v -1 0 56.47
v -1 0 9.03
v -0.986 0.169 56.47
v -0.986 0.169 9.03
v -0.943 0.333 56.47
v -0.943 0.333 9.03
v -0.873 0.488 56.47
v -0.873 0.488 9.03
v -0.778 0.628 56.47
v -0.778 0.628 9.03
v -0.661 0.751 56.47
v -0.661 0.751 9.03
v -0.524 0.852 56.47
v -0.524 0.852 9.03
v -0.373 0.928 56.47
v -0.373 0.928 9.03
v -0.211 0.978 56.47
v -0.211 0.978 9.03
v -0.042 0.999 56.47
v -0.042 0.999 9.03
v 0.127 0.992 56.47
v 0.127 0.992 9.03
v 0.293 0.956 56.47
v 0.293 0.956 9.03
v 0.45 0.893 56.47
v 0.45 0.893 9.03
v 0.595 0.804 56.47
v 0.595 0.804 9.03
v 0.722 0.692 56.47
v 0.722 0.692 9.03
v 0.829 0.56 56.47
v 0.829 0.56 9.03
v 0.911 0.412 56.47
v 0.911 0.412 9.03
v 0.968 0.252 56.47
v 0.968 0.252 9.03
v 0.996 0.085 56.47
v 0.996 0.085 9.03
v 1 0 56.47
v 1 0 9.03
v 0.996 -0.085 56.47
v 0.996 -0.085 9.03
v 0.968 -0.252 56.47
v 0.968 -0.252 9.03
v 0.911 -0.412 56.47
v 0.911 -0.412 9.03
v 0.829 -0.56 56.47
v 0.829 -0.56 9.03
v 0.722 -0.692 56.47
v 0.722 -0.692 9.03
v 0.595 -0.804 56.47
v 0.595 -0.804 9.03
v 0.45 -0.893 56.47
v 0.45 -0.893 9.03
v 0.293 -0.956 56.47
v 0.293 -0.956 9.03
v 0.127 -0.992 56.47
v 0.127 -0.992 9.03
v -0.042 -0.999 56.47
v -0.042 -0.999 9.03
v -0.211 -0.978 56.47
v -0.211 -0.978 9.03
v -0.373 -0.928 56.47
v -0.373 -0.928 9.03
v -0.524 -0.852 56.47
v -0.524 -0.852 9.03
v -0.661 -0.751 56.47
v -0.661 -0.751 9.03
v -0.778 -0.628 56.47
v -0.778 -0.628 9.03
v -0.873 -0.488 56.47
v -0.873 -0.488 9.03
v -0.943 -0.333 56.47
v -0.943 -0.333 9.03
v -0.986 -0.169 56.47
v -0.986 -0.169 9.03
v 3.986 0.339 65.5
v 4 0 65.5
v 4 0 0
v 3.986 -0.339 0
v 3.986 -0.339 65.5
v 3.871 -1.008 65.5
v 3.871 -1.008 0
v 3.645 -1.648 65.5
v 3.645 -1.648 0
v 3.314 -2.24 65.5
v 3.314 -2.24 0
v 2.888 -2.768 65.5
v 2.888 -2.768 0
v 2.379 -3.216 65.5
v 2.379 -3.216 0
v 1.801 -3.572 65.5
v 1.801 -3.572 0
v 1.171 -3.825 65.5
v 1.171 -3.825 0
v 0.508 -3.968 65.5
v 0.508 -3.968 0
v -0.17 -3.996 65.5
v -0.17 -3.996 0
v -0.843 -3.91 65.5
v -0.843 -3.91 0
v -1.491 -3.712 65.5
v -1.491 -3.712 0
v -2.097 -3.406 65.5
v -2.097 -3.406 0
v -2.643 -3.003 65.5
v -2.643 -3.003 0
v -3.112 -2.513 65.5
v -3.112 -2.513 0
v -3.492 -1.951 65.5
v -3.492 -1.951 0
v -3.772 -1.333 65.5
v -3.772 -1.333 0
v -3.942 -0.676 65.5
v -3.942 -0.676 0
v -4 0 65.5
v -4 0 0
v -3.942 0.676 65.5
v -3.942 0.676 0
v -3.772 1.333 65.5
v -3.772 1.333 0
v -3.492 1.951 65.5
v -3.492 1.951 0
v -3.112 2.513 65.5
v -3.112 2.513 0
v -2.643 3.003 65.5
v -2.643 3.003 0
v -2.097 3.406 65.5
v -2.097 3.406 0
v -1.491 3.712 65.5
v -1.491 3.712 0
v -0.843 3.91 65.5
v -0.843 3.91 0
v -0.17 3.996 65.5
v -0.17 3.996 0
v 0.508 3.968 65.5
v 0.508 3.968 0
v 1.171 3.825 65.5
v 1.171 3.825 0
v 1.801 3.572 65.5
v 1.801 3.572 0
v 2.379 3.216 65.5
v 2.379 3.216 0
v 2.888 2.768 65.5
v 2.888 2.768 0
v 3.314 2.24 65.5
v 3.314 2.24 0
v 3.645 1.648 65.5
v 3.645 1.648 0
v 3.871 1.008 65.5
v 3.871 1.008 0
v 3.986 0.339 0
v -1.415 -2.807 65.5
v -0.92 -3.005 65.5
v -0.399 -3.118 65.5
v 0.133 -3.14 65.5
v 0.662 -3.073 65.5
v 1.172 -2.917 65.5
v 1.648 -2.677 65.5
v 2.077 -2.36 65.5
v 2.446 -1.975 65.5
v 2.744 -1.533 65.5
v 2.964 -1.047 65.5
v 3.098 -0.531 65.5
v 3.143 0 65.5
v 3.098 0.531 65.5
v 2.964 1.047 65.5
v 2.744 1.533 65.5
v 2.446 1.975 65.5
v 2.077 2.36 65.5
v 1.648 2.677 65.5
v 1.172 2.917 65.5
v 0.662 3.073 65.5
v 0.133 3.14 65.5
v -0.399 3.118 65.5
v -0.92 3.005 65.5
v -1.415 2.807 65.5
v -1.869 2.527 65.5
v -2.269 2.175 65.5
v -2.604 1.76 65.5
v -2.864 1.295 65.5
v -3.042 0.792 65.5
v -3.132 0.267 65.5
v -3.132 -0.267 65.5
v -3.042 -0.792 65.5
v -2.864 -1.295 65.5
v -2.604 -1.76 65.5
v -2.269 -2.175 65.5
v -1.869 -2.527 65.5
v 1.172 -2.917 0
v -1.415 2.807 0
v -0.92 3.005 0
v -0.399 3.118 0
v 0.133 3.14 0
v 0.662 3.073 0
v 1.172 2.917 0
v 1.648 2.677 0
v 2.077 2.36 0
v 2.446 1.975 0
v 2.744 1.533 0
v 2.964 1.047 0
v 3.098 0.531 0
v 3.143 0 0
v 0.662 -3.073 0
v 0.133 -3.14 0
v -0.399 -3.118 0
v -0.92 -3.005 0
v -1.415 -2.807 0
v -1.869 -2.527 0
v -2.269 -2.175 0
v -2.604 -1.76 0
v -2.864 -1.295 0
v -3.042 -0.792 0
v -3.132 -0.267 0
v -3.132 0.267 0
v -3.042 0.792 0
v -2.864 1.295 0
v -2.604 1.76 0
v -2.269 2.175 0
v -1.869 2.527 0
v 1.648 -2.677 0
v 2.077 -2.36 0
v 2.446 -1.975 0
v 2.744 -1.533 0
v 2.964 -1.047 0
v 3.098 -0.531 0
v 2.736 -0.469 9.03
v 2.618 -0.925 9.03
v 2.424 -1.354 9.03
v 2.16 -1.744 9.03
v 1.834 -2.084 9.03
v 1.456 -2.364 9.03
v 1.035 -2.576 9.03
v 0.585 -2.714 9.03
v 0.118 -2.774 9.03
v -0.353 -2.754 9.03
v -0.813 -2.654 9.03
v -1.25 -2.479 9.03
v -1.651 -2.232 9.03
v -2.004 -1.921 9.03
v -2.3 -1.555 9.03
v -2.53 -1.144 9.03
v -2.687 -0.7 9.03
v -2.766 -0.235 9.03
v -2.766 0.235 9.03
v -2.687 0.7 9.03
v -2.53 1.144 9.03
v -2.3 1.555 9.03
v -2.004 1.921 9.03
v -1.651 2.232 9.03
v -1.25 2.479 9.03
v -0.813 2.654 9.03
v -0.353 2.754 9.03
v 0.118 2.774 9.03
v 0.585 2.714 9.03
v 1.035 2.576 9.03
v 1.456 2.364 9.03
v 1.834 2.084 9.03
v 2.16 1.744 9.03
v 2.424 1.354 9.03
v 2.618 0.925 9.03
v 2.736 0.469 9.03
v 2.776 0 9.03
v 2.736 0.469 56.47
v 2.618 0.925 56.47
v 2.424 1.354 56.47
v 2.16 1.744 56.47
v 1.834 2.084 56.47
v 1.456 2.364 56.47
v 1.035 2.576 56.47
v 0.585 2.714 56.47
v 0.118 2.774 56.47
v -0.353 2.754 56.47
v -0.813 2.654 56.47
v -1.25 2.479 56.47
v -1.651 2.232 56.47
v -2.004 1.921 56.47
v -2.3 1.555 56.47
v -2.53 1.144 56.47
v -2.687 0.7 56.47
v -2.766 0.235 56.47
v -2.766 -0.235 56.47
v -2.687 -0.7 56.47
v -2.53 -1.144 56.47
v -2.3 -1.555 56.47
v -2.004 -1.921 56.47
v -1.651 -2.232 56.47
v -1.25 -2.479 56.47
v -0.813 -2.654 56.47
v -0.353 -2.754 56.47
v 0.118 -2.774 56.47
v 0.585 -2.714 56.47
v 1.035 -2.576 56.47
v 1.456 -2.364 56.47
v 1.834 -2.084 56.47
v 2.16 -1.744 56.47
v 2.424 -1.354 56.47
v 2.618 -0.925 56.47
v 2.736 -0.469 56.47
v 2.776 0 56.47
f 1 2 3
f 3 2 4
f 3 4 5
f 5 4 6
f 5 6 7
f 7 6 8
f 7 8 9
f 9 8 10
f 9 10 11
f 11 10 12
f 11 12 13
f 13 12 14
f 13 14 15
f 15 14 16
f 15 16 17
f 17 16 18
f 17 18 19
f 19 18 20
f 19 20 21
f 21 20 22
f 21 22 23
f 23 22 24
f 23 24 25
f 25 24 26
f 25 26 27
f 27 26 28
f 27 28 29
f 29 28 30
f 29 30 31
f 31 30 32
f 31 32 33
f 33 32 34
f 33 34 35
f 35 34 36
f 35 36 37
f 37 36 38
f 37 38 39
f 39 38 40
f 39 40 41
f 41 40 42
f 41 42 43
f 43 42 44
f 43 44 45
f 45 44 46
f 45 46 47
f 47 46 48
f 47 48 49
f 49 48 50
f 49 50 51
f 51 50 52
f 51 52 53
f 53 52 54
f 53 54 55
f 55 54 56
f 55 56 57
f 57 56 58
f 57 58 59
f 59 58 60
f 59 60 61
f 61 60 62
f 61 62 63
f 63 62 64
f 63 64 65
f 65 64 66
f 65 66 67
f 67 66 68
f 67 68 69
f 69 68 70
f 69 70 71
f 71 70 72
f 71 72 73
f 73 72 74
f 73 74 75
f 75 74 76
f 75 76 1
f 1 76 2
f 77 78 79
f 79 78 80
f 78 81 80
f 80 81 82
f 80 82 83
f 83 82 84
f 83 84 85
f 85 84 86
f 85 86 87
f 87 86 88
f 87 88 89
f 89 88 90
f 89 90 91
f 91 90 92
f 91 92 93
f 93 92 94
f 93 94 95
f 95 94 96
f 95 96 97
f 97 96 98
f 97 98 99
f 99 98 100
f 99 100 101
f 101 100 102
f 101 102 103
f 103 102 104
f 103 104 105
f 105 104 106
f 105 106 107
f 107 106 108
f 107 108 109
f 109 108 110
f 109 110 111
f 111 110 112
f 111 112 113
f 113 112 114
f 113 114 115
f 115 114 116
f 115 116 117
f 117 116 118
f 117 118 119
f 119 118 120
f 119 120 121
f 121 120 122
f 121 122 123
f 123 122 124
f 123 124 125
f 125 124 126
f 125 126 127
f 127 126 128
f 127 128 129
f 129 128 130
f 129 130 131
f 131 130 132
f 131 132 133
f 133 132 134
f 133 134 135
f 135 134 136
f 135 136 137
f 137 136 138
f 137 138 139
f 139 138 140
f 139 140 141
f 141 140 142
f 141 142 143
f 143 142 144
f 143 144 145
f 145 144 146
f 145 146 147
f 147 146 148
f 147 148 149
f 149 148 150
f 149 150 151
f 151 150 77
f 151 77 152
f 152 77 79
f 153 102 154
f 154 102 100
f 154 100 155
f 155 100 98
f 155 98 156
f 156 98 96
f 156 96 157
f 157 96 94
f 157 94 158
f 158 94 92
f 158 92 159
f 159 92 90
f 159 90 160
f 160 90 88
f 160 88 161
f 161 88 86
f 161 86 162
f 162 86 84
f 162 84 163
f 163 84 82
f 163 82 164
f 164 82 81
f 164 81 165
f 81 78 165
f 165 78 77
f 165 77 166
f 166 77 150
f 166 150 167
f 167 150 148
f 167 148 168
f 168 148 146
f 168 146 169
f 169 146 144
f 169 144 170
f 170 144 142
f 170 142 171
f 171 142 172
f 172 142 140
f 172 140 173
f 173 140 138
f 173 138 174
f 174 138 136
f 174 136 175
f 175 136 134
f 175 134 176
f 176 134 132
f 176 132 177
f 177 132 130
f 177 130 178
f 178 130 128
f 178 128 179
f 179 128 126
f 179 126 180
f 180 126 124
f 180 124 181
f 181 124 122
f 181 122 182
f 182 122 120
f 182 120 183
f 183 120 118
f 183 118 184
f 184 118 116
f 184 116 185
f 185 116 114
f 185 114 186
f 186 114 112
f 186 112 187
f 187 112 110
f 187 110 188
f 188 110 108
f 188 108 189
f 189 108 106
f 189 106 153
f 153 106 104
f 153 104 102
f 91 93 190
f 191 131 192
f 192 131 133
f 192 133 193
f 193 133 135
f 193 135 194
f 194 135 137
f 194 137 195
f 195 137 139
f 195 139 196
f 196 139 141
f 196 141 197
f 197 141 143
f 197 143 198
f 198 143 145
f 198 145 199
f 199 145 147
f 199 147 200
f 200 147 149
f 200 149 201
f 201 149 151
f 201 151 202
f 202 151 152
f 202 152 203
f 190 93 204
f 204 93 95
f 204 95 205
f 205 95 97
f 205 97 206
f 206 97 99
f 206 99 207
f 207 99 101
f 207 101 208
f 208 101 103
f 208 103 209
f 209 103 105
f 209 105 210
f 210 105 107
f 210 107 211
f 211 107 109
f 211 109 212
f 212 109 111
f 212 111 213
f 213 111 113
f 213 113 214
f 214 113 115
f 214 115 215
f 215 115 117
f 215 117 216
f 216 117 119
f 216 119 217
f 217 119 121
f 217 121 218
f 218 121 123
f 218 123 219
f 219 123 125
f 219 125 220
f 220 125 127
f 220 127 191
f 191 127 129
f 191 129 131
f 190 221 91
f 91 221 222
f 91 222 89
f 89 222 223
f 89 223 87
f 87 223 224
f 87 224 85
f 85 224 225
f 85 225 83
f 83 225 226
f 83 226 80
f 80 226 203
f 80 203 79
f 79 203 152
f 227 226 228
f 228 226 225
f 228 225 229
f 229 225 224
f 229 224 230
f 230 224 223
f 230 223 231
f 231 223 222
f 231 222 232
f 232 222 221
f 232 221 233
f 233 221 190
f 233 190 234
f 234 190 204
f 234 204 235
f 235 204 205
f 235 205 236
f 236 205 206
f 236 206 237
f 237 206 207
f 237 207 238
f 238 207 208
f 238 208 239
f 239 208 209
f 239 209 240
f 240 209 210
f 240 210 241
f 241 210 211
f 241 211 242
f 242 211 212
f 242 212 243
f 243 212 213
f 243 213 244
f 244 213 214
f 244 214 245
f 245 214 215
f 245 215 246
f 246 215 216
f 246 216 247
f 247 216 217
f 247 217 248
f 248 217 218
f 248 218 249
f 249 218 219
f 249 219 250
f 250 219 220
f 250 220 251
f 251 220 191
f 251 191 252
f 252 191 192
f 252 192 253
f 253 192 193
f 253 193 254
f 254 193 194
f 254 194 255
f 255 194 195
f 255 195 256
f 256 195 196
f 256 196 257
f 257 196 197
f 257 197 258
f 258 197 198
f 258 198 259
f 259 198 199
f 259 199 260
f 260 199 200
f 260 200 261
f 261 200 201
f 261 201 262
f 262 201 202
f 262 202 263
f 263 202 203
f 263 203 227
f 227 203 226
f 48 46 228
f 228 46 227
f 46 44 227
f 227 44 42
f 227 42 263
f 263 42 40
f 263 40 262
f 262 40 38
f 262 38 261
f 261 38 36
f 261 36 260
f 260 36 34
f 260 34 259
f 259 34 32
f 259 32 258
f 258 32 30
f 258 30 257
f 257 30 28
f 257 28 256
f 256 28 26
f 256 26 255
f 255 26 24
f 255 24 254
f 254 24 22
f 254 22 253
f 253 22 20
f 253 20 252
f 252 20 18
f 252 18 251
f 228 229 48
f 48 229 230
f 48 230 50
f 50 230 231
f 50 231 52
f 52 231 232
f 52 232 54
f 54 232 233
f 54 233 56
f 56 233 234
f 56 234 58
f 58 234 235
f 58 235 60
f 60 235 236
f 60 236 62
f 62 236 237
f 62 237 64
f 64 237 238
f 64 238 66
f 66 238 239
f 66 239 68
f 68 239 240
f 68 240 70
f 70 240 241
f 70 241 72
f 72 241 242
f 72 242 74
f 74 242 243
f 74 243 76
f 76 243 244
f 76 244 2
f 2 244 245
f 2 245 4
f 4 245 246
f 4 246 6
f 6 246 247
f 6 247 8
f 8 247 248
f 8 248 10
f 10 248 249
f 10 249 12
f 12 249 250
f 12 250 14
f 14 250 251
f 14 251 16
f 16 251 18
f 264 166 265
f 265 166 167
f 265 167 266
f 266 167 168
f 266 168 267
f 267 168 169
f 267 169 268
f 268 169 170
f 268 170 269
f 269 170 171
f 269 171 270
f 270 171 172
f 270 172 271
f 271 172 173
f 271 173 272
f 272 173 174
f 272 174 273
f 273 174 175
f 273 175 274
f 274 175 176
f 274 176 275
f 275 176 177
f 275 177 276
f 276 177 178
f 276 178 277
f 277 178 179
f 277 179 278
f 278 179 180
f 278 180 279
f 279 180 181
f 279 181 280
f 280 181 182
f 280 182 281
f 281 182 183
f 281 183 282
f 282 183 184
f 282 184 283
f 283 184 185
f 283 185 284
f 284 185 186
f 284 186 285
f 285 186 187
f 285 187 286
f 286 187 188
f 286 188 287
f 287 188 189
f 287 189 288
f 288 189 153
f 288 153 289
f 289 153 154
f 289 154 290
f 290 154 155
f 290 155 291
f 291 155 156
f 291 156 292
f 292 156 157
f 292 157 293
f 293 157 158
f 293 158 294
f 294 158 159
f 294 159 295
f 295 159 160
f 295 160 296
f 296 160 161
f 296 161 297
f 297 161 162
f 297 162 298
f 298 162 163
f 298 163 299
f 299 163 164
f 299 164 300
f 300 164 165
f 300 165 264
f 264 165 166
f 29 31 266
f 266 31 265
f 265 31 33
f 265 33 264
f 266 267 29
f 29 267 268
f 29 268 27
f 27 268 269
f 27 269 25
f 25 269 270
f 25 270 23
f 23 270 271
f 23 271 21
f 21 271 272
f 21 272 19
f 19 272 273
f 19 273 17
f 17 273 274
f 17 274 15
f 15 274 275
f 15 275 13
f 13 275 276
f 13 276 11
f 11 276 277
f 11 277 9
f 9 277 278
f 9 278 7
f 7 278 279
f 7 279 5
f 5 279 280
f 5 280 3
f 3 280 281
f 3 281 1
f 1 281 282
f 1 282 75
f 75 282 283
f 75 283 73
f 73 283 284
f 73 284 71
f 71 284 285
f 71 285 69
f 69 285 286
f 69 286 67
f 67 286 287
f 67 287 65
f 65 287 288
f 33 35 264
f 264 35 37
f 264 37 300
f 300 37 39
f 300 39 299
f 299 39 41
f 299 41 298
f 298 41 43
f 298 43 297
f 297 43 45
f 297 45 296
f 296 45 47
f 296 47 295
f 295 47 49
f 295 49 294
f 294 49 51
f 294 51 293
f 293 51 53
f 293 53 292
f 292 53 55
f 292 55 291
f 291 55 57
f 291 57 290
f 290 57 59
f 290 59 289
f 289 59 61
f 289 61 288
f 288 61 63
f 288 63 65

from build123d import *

# Parameters (mm, degrees)
SKETCH1_R           = 4
BOSS_EXTRUDE1_DEPTH = 65.5
SKETCH2_R           = 1
CUT_EXTRUDE1_DEPTH  = 66.5
SKETCH3_R           = 3.14325
CUT_EXTRUDE2_DEPTH  = 9.0297
CUT_EXTRUDE2_TAPER  = 2.328
SKETCH4_R           = 3.14325
CUT_EXTRUDE3_DEPTH  = 9.0297
CUT_EXTRUDE3_TAPER  = 2.328


with BuildPart() as part:
    # Sketch1 → Boss-Extrude1 (new body)
    with BuildSketch(Plane.XY):
        Circle(SKETCH1_R)
    extrude(amount=BOSS_EXTRUDE1_DEPTH)

    # Sketch2 → Cut-Extrude1 (cut, through all)
    with BuildSketch(Plane.XY):
        Circle(SKETCH2_R)
    extrude(amount=CUT_EXTRUDE1_DEPTH, mode=Mode.SUBTRACT)

    # Sketch3 → Cut-Extrude2 (cut)
    with BuildSketch(Plane.XY):
        Circle(SKETCH3_R)
    extrude(amount=CUT_EXTRUDE2_DEPTH, taper=CUT_EXTRUDE2_TAPER, mode=Mode.SUBTRACT)

    # Sketch4 → Cut-Extrude3 (cut)
    with BuildSketch(Plane.XY.offset(65.5)):
        Circle(SKETCH4_R)
    extrude(amount=-CUT_EXTRUDE3_DEPTH, taper=CUT_EXTRUDE3_TAPER, mode=Mode.SUBTRACT)


solid = part.part
